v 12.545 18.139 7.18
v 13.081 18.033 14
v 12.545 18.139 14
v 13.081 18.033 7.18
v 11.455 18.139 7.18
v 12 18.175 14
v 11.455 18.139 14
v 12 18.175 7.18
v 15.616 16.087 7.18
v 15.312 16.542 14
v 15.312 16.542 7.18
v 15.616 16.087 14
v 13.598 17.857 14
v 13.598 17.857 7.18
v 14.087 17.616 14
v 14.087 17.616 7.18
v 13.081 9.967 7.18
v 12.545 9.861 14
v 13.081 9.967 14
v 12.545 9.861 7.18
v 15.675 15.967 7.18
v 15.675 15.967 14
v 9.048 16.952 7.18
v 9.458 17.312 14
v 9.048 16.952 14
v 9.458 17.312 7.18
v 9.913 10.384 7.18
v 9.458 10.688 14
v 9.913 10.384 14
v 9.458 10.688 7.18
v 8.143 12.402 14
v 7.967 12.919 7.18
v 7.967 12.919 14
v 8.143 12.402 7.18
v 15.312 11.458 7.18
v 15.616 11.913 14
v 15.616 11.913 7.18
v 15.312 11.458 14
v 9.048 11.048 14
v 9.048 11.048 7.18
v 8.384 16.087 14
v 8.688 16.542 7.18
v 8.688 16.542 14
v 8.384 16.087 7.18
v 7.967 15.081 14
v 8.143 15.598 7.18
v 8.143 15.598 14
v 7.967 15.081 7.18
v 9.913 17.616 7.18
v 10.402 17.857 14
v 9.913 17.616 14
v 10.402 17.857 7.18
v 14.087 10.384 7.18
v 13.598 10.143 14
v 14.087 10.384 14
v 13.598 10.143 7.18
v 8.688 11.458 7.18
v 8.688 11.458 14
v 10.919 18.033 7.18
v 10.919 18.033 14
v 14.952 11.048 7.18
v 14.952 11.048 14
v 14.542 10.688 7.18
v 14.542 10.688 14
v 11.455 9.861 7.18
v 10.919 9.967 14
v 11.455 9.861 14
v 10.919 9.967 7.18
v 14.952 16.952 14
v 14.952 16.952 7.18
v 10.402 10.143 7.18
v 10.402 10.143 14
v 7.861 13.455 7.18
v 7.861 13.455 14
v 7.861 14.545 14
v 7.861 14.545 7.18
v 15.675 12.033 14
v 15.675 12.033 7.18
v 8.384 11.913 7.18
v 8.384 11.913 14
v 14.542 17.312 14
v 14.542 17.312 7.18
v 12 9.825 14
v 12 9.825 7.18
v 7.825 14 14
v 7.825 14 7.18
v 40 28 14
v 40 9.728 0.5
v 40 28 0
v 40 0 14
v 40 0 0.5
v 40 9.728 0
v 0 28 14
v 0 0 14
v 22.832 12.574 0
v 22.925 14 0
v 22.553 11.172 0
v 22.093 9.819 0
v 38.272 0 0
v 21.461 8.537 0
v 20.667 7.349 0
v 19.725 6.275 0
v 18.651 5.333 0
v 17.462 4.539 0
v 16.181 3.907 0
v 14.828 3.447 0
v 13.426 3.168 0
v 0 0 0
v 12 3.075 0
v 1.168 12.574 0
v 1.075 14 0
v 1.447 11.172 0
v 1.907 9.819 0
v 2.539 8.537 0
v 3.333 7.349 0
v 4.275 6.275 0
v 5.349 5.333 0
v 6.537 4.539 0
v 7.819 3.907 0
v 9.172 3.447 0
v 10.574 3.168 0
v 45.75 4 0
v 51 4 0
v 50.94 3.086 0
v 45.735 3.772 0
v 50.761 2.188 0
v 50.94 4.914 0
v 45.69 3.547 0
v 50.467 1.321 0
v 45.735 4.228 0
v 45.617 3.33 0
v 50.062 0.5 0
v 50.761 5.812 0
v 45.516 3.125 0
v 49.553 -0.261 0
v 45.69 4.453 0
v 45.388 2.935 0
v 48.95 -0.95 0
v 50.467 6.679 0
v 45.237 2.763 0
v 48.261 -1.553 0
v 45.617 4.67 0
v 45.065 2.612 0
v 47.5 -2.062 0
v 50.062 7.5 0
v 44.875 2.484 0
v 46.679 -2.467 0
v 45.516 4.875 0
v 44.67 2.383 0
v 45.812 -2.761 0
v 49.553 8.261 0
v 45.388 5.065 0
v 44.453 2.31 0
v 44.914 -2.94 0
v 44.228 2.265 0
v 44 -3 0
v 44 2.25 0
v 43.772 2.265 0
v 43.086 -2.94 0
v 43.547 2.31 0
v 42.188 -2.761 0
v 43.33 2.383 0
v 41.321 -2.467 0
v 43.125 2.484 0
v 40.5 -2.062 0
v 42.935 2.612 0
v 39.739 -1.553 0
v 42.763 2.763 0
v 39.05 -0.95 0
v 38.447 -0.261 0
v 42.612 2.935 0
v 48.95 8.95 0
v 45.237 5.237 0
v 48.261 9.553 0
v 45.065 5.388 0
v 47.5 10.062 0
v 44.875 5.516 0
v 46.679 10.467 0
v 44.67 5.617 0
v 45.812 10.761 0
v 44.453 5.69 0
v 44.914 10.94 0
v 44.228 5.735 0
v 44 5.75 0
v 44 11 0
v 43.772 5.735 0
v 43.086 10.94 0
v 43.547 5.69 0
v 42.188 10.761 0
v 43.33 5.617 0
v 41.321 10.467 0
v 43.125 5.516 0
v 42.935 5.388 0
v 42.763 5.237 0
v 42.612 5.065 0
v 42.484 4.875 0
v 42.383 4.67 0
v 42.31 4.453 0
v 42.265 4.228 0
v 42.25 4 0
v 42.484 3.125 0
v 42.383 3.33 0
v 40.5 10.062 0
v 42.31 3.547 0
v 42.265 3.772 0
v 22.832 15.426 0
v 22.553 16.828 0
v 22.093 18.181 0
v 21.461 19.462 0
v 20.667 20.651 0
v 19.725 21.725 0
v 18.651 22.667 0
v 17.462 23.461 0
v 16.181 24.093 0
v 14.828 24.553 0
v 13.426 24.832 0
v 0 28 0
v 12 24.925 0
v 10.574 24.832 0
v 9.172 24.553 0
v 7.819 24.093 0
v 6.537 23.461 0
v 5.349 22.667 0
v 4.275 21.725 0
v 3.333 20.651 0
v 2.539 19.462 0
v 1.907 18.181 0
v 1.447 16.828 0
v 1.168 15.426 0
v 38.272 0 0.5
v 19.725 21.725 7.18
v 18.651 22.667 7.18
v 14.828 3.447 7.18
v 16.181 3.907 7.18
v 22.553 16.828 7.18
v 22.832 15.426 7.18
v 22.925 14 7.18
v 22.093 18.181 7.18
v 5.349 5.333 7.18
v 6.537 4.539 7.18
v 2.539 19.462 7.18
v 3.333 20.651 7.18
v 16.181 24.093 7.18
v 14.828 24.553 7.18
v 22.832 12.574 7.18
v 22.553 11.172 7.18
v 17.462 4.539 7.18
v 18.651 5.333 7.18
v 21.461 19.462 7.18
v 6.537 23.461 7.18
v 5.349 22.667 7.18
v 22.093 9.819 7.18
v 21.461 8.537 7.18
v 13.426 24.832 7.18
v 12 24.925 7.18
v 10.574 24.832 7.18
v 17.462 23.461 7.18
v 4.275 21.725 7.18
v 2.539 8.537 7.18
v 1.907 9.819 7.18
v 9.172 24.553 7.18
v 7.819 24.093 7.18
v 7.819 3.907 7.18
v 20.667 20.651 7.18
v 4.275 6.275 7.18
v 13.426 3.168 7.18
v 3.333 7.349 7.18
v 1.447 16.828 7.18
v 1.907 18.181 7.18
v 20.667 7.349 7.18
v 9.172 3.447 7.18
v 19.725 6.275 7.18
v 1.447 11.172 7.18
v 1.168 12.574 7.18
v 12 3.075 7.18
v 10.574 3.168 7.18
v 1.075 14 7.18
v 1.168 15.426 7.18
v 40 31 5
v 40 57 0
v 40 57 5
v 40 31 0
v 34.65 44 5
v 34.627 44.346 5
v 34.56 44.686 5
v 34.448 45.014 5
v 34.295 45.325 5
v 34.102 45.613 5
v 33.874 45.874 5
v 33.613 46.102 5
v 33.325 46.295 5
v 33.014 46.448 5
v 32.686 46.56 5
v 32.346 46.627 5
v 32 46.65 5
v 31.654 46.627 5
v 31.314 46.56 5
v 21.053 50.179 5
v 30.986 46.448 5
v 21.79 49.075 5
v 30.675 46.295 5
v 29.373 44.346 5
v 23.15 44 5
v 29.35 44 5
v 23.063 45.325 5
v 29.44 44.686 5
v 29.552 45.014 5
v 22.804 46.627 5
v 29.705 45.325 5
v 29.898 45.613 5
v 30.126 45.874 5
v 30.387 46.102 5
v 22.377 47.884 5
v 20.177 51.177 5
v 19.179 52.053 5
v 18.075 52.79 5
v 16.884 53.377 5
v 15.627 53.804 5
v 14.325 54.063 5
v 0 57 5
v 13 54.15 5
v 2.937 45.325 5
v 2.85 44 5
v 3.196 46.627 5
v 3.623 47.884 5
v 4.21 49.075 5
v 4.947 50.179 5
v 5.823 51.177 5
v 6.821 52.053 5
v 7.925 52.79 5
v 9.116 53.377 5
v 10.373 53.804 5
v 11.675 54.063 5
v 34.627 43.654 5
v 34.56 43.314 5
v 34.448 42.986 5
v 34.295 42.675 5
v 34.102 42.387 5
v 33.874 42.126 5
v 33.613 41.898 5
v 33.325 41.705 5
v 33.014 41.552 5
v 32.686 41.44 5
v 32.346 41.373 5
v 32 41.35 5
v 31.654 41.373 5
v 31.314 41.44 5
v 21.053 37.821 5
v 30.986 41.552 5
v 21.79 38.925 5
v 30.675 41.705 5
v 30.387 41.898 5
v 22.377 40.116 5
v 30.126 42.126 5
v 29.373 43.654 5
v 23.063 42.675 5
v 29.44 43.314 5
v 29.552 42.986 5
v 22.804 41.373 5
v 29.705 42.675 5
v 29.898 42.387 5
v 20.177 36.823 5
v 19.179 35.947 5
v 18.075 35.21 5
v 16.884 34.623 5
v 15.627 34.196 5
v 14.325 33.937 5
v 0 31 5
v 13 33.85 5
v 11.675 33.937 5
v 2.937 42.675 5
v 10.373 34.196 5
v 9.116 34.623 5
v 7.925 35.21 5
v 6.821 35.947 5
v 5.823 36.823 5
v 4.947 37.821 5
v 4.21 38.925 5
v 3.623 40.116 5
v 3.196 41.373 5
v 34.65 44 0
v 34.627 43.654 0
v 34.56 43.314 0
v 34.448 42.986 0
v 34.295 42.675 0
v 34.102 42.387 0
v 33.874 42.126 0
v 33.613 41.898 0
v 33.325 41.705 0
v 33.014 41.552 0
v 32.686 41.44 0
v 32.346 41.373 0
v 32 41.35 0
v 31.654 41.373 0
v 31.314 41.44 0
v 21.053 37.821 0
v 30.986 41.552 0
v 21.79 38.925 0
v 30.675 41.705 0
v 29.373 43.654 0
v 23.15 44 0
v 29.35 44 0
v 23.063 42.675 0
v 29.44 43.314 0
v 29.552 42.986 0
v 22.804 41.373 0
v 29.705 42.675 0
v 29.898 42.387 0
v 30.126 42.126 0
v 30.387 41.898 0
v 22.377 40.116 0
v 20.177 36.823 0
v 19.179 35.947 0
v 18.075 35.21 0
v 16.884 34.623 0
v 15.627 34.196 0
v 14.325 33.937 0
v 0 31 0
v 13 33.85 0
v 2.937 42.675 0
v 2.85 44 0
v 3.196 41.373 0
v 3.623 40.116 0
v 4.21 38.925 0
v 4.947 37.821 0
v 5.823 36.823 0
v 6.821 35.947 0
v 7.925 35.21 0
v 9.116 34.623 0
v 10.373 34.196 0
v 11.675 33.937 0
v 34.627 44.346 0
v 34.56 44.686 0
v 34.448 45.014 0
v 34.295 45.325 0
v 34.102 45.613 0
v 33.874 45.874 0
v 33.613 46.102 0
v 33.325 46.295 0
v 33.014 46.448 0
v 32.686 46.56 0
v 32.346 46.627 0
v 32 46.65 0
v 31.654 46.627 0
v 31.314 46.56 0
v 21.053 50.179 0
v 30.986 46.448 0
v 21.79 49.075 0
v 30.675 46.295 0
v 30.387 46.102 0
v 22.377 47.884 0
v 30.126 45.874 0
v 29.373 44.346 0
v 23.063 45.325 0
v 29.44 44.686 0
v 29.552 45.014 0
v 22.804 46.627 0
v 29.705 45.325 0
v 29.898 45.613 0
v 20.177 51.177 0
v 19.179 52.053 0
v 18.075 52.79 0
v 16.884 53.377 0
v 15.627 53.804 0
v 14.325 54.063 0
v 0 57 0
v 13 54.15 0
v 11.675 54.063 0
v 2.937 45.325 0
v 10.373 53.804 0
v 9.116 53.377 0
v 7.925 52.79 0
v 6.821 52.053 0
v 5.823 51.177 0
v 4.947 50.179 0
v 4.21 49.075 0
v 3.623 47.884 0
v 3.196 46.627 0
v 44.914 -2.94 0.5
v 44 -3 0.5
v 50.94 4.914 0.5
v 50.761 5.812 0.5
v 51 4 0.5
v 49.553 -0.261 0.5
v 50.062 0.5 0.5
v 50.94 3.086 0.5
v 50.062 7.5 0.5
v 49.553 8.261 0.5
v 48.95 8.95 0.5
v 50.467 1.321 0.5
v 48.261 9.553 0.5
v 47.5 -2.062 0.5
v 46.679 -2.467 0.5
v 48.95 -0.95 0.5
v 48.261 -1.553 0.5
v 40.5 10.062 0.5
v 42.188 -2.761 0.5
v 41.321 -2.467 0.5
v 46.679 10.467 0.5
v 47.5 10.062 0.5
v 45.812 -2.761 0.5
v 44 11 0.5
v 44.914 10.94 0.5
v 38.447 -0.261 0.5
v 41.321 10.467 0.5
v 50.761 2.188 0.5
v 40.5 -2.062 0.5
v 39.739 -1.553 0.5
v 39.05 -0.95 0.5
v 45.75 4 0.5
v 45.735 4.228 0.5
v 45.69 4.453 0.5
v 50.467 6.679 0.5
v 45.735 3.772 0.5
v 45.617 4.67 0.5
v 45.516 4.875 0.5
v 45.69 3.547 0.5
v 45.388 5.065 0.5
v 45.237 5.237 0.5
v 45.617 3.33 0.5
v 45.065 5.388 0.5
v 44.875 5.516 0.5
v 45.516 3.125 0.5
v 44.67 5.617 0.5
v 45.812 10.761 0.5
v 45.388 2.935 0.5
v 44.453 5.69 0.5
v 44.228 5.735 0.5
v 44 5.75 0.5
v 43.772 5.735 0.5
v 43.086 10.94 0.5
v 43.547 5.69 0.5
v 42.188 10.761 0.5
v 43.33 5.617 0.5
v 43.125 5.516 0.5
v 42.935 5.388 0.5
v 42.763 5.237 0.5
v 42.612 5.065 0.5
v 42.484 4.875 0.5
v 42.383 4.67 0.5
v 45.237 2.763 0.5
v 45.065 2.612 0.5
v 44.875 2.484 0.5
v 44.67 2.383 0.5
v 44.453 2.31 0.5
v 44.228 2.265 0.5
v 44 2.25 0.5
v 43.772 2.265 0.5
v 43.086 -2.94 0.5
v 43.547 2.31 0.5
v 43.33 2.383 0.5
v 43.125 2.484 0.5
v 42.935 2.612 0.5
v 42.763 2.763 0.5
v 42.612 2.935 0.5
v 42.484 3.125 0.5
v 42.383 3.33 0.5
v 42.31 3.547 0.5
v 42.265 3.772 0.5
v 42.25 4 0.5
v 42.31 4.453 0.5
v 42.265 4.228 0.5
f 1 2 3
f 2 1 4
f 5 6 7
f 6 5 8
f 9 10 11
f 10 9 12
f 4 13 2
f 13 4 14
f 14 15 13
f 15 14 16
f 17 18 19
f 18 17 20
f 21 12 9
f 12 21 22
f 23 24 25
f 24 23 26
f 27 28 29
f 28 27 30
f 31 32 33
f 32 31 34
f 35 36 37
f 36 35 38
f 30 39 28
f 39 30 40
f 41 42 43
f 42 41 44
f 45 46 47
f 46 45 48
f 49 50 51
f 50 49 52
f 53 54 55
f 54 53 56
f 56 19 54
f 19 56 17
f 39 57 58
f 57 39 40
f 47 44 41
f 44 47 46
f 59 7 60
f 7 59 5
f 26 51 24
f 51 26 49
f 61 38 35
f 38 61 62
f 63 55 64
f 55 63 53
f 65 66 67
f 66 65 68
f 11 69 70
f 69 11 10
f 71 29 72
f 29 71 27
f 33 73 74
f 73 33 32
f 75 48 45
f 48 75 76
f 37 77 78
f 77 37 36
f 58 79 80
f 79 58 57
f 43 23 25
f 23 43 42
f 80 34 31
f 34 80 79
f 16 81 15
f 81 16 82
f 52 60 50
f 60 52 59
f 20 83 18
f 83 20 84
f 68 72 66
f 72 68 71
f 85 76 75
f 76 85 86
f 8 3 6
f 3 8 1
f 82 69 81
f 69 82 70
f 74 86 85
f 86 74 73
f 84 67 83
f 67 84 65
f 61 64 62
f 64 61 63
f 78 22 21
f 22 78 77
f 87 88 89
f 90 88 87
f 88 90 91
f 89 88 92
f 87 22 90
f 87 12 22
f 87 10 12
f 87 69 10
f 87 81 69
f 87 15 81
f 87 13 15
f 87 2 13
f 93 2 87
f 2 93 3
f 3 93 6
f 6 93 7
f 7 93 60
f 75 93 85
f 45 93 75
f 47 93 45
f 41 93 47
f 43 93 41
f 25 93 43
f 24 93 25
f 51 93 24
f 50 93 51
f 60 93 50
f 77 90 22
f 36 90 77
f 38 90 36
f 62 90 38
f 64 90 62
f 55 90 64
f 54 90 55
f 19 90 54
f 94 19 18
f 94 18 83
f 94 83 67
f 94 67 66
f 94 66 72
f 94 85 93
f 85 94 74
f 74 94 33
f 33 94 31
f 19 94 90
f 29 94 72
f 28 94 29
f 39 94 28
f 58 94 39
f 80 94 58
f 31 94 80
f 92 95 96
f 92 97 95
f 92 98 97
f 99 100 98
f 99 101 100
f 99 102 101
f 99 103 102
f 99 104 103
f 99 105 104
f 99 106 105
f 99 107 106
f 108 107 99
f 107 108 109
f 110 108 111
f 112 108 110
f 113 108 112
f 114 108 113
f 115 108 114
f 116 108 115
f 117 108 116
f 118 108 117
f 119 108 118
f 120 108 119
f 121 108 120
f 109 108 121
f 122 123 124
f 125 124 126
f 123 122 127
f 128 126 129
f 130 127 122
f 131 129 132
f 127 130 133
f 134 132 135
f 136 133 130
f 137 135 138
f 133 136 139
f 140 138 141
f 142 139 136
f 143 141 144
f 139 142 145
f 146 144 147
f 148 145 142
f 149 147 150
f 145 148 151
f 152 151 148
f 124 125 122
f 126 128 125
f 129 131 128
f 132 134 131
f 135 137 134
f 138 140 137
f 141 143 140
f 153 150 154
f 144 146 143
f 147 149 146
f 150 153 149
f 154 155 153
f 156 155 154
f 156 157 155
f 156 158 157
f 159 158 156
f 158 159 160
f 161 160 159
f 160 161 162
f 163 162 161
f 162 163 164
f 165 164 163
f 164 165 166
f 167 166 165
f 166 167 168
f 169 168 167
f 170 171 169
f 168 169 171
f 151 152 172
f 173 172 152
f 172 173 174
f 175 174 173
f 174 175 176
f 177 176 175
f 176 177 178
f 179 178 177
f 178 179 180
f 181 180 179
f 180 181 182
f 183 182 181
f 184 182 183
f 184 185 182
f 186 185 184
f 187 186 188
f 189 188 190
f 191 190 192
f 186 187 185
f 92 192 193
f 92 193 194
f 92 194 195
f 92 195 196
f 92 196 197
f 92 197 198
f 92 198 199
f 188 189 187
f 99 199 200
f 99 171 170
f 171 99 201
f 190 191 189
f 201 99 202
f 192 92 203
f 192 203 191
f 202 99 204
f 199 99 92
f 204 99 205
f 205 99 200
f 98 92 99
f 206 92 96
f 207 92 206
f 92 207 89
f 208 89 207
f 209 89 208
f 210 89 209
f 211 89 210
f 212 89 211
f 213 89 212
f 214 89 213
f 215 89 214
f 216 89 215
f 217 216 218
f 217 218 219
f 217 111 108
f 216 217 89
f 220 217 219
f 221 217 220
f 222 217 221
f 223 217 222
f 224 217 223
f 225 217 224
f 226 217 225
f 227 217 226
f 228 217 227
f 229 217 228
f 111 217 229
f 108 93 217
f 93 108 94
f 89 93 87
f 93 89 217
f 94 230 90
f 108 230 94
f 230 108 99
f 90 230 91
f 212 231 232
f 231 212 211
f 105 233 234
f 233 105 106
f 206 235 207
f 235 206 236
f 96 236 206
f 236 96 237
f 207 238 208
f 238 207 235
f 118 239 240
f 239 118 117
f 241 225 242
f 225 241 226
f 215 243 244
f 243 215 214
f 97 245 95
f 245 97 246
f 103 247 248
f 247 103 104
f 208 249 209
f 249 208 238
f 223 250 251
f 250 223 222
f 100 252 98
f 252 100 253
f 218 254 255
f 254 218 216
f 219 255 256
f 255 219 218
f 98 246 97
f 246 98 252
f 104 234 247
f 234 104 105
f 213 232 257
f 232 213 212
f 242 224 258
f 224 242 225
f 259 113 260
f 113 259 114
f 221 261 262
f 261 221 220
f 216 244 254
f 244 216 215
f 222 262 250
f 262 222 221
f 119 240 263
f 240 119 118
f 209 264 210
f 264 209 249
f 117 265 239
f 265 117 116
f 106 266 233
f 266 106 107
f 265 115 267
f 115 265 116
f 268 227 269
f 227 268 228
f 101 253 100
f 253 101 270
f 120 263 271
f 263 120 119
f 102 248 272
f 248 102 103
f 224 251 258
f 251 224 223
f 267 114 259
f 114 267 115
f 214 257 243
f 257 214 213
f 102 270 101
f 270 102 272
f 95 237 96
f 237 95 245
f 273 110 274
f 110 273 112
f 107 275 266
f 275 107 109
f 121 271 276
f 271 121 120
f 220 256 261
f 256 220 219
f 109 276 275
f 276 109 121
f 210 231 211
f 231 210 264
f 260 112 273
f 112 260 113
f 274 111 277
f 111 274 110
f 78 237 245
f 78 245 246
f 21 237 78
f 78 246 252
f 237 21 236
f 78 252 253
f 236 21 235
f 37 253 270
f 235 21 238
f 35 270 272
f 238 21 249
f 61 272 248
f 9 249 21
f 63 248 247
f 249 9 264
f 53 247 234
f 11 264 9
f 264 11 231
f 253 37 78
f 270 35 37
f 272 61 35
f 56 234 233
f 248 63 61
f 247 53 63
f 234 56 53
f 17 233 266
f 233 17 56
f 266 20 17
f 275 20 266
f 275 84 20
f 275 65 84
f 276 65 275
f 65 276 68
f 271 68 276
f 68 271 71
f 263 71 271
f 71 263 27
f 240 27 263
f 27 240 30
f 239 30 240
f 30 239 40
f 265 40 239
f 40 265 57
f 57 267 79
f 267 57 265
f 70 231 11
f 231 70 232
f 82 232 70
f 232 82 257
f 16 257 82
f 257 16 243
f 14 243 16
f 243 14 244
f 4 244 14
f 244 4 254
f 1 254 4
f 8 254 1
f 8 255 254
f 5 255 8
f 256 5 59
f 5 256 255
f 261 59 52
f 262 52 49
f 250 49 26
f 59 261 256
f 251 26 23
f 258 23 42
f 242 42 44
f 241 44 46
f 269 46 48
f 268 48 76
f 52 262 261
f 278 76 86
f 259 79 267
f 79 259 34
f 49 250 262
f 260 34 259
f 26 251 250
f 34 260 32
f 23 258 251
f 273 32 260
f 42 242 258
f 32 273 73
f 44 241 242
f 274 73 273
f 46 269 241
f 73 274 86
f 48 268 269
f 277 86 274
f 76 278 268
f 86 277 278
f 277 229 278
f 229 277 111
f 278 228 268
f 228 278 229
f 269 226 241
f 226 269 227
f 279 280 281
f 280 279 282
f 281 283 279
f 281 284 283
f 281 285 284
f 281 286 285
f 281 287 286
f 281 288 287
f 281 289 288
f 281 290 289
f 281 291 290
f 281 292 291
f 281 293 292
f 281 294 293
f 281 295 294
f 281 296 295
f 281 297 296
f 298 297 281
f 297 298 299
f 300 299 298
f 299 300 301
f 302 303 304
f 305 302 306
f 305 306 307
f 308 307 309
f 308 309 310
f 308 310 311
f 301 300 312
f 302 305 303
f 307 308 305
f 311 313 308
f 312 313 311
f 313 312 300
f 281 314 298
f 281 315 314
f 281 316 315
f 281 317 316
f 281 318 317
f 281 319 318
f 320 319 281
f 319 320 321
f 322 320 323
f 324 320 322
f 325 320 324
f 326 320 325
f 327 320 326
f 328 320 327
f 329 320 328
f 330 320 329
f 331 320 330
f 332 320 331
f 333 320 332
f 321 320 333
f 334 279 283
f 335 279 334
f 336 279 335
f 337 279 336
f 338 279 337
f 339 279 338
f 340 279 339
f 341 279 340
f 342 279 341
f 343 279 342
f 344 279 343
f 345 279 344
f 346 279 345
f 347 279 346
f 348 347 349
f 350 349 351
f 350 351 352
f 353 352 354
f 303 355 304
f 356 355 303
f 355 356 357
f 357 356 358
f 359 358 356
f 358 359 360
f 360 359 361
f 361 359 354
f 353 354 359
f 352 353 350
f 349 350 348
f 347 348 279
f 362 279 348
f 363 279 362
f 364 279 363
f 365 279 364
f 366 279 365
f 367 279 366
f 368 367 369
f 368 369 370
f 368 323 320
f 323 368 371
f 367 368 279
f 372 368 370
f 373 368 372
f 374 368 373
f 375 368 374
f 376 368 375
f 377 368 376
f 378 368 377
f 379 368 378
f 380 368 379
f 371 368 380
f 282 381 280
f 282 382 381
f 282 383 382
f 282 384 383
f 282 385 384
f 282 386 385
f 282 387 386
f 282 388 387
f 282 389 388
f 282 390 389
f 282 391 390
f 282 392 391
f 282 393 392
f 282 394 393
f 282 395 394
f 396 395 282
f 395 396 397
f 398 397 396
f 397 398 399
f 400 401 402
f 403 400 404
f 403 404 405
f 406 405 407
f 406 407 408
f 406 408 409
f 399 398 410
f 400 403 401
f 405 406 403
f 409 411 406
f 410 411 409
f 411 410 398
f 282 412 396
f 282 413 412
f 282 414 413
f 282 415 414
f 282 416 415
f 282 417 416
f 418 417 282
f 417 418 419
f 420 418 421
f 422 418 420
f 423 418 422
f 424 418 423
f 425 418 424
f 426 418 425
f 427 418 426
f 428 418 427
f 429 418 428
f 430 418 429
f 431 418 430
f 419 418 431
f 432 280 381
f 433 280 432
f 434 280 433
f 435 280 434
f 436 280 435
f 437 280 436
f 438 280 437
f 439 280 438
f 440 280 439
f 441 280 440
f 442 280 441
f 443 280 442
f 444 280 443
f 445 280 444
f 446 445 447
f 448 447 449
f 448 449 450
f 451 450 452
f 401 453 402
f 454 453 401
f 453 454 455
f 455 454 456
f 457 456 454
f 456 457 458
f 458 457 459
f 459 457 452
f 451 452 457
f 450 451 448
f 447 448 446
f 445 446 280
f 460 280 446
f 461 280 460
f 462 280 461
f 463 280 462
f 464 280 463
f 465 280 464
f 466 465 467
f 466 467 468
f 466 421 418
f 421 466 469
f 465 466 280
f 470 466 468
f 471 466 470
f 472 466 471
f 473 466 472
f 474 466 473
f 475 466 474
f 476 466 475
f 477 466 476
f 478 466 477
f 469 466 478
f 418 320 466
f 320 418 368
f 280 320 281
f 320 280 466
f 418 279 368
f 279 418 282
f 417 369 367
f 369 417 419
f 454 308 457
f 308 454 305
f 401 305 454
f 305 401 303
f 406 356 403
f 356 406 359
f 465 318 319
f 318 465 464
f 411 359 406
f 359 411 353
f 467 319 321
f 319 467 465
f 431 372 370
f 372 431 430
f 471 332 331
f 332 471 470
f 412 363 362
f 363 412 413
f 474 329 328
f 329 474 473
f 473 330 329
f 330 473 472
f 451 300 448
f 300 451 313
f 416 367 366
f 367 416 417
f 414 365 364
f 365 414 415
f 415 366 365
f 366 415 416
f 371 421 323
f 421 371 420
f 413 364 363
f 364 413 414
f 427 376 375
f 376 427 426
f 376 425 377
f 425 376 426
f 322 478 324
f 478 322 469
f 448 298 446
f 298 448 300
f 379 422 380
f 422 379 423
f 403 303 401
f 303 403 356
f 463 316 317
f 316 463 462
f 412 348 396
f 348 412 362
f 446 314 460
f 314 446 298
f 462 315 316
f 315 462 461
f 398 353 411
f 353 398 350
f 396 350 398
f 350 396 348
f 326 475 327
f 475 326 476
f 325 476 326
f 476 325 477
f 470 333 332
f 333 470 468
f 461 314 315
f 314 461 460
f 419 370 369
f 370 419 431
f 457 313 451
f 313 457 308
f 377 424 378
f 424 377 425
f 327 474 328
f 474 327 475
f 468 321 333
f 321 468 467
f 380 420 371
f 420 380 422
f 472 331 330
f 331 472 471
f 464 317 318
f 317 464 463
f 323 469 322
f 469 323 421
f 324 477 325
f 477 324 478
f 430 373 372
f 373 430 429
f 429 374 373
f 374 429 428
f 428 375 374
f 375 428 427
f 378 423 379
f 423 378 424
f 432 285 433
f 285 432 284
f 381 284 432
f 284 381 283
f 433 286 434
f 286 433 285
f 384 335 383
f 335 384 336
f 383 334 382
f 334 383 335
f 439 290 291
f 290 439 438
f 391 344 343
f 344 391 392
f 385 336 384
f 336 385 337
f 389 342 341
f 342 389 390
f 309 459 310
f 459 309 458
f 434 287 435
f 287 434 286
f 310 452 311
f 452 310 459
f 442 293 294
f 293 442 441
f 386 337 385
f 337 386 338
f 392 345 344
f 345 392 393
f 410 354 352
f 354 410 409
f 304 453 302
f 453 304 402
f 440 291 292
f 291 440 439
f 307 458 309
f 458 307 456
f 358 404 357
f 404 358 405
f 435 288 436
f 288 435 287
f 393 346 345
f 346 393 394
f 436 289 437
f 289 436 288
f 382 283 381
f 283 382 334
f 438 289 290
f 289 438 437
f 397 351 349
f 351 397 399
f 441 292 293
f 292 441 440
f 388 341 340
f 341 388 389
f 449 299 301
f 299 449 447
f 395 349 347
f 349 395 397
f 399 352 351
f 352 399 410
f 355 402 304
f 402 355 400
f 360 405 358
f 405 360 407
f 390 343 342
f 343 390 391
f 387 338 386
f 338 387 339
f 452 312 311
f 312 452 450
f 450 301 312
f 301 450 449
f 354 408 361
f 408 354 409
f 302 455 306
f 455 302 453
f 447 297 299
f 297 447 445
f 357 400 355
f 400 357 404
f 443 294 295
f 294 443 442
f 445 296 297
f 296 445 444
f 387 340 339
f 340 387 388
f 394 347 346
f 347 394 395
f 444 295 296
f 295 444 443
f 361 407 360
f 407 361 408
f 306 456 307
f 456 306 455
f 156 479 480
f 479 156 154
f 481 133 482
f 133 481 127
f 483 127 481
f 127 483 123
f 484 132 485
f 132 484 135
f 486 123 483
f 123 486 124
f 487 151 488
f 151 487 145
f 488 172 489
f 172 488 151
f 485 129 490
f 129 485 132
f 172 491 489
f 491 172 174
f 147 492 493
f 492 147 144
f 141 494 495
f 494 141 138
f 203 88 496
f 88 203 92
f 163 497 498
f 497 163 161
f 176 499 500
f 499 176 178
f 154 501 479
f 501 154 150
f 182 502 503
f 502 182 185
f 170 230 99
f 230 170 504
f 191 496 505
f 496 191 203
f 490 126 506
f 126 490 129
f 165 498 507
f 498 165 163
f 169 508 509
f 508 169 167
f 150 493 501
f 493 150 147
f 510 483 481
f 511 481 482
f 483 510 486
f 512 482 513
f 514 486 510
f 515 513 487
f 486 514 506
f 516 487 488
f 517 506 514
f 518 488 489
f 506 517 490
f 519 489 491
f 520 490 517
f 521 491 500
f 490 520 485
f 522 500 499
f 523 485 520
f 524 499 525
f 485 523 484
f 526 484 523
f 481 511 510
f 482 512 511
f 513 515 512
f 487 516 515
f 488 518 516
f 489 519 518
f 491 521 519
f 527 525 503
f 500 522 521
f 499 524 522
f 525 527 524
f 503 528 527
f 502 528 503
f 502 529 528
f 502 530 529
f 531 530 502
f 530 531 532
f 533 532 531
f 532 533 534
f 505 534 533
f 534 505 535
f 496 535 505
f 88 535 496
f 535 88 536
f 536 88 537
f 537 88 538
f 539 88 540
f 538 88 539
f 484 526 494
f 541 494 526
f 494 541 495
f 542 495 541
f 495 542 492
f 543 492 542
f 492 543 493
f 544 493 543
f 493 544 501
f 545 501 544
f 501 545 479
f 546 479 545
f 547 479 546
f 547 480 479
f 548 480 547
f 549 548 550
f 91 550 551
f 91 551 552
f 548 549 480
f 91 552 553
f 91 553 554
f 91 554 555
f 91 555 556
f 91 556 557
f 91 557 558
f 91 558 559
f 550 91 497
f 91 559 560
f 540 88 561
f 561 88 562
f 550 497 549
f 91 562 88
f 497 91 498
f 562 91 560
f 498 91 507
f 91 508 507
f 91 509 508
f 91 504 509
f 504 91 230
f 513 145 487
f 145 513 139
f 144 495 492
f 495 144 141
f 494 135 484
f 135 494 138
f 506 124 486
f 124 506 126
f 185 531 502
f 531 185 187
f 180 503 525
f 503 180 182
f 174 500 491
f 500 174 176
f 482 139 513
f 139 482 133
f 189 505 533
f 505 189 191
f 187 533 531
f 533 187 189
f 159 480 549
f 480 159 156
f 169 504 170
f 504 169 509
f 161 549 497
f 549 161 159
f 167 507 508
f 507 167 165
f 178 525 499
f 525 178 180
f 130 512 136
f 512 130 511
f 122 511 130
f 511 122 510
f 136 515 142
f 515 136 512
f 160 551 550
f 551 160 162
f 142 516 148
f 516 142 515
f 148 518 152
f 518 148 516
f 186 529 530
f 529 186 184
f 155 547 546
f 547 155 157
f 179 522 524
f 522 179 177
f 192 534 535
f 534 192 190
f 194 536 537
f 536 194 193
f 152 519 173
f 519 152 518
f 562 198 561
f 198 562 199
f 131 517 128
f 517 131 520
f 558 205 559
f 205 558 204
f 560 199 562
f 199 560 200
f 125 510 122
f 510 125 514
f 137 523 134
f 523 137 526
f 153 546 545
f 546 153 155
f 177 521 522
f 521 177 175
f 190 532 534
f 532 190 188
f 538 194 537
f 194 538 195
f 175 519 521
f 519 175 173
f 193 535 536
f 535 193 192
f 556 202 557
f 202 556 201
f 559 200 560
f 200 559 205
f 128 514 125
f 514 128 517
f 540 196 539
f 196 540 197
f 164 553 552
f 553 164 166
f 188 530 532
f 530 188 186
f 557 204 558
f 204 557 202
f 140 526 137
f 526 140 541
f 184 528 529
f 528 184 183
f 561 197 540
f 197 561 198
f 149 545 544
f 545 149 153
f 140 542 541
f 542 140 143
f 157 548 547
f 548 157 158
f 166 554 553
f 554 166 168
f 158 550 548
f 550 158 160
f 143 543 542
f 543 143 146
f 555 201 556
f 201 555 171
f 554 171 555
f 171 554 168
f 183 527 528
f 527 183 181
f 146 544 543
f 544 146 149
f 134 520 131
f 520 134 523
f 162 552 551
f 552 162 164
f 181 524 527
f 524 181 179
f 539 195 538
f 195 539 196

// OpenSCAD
// file: parameters.scad
// =============================================================================
// Gen-CD — nightly 2026-10-14 (physics_scorer, honest magpylib watts)
// Push past Gen-CA on the same arc-nested one-plate architecture: poles out to R86, bobbins r65–105 × 4.95 mm copper. Full-resolution scorer picks this window at ≈8.56 W (386 m, at the wire budget) with a Ø229 stator that still packs; thinner-copper R86 tips (r65–107 × 4.65) need Ø232+ and would not pack. Same 8 bolt-on arcs/rotor + D-flat hub + open-centre stator + in-place bobbin bases that unlocked Gen-CA.
// Clocking 0 deg (magnets N facing S) + D-flat keyed bore + index notch + flip-symmetric hole map.
// Windable 2-piece bobbin; turns = physics_scorer turns_fit; copper only between flanges.
// Steel back-iron: 2× Ø198 × 4.76 mm (3/16") mild-steel discs (steel_backiron_disc.dxf); magnets sit ON the steel
// (through-pockets) -> score with --back-iron. Night 2026-10-14.
// =============================================================================
topology            = "dual_rotor";

// --- Wire / winding (physics_scorer winding-fit) -------------------------------
wire_awg            = 26;
wire_od             = 0.45;     // insulated OD mm (bare 0.405)
fill_realistic      = 0.65;     // insulated-wire area / window (DENSE layered wind with a jig; scorer cap 0.65)
turns               = 370;       // = physics_scorer turns_fit (do NOT raise)
coil_former_type    = "bobbin";
coil_core_inset     = 18.31;     // radial copper build: hub = copper boundary inset by this
wind_build_axial    = 0.0;      // nothing proud of the flanges
wind_build_radial   = 0.0;

// --- Bobbin (base + lid) ---------------------------------------------------------
coil_id_r           = 65.00;    // copper boundary sector
coil_od_r           = 105.00;
span_deg            = 26.91;    // = pitch - 2*asin((wall+0.85)/coil_id_r) -> >=1.2 mm stator web
former_web          = 4.95;     // copper height between flanges (TALL copper: steel keeps Bz up)
flange_t            = 0.80;     // >= 0.8 mm FDM wall rule (tall winds push on the flanges)
wall                = 0.80;     // flange lip beyond copper
former_bare_h       = former_web + 2 * flange_t;
coil_envelope_h     = former_bare_h + 2 * wind_build_axial;
tab_w               = 7.0;
tab_len             = 7.0;
tab_h               = former_bare_h / 2;
pin_d               = 1.9;      // 1.75 mm filament locating pin
coil_mount_r        = coil_od_r + 0.2 + 4.0;
lead_y              = 1.6;
lead_slot_w         = 0.9;
lead_groove_d       = 0.6;

// --- Gap -------------------------------------------------------------------------
run_clear           = 0.50;     // rotor face -> flange
gap_spacer_h        = run_clear + wind_build_axial;
m2m                 = coil_envelope_h + 2 * run_clear;   // rotor face to rotor face (= gap_sleeve length)

// --- Stator ----------------------------------------------------------------------
coil_stations       = 12;
bay_clear           = 0.35;     // 0.35 mm: bobbin BASES print IN PLACE inside the stator bays (print-in-place gap), then pop out
stator_thick        = former_bare_h;                        // bobbins flush both faces
stator_od           = 229.0;
shaft_clear_stator  = 14.0;     // stator is static; gap sleeve OD 12 spins inside
stator_ir           = 59.85;    // ANNULAR stator: open centre (nested one-plate pack); inner rim 4.0 mm

// --- Rotor(s) --------------------------------------------------------------------
magnet_Br           = 1.43;     // N52
magnet_d_large      = 20.0;
magnet_h_large      = 5.0;      // one O20x5 per pocket
magnet_h_small      = 5.0;      // unused: no O5 pockets in this kit
halbach_magnetisation = "none";  // NO O5 assist magnets in this kit (scan: they lower the 4-pole score)
rotor_b_same_axis   = true;     // same-index magnets share one axis: N faces S across the gap
large_pocket_d      = 20.3;
small_pocket_d      = 5.3;
pocket_h            = 5.00;     // THROUGH the carrier: magnet back face sits on the steel disc (FLUSH seat: carrier = magnet height, magnet face level with the rotor face)
large_n             = 8;
R_large             = 86.0;
small_r_list        = [];       // no O5 pockets
carrier_od          = 198.0;
ring_ir             = 72.85;    // RING rotor: PLA magnet ring r ring_ir..carrier_od/2 (steel disc = structural rotor)
hub_flange_od       = 74.0;     // separate rotor_hub flange (inside the ring, flush with the ring face)
csk_d               = 6.6;      // M3 countersunk head pocket (ISO 10642 head 6.0 nominal) on the stator face
csk_depth           = 1.55;     // = (csk_d - m3_clear) / 2: 90 deg cone; head sits 0.3 mm below the face
n_seg               = 8;        // magnet-carrier ARCS per rotor (segmented carrier)
seg_deg             = 360 / n_seg;
seg_start           = -22.5;   // arc edge angle (between pocket 0 and its clamp bolt)
seg_kerf_deg        = 0.4;      // gap between neighbouring arcs on the steel
carrier_thick       = pocket_h;
hub_h               = 12.0;     // > steel_t + insert: radial set-screw clears the steel
hub_od              = 24.0;     // slim hub so the M4 brace rods fit at R~18 inside the coil ring
hub_insert_d        = 4.0;      // M3 heat-set insert, radial, bears on the D-flat
rotor_b_offset_deg  = 0.0;      // CLOCKING: magnets directly opposite
shaft_key           = "dflat";
dflat_depth         = 0.5;      // 8 mm shaft with 0.5 mm flat (7.5 across flat)
index_notch_d       = 3.0;

// --- Steel back-iron (buyable laser-cut) -------------------------------------------
steel_t             = 4.76;      // mild steel thickness (image method ignores it; sized from steel_flux.py so the return path stays well below saturation)
steel_center_hole   = 26.0;     // slips over the rotor hub (OD 24)
steel_od            = carrier_od;   // steel disc OD = rotor carrier OD

// --- Modular MAX interface ----------------------------------------------------------
shaft_bore          = 8.35;
dflat_x             = 4.0 - dflat_depth + (shaft_bore - 8.0) / 2;
bearing_d           = 21.85;
bearing_h           = 7.2;
m3_clear            = 3.5;
bolt_r_inner        = 30.0;     // M3 steel-disc clamp bolts (inside the magnet ring)
bolt_n_inner        = 4;
bolt_inner_angles   = [0, 90, 180, 270];
bolt_r_outer        = 86.0;     // second M3 steel-disc clamp ring
bolt_outer_angles   = [22.5, 67.5, 112.5, 157.5, 202.5, 247.5, 292.5, 337.5];
flange_bolt_r       = 109.5;     // frame rods: OUTSIDE the rotor OD (rotors spin inside them)
flange_bolt_n       = 4;
flange_bolt_offset  = 45.00;    // between coil stations -> never cuts a lead groove/tab
brace_r             = 18.0;
brace_d             = 4.3;      // temporary M4 jack rods (assembly only)
brace_n             = 4;
brace_angles        = [45, 135, 225, 315];          // flip-symmetric

spacer_pad_od       = 14.0;
spacer_pad_id       = m3_clear;
endbell_od          = 229.0;
endbell_thick       = 8.0;
endbell_shaft_clear = 10.0;
collar_h            = 10.0;
standoff_od         = 9.0;
frame_standoff_h    = run_clear + carrier_thick + hub_h + collar_h + 2.0;
sleeve_od           = 12.0;
plate_max_mm        = 410;

$fn = 64;
// main file
// Gen-CD — fit coupon: O20/O5 THROUGH pockets at carrier thickness (test on a steel offcut), 608 seat,
// D-flat bore, gap shim, and one bobbin-bay slice (bobbin footprint + bay_clear) to test former fit.
include <parameters.scad>;
$fn = 48;
// D-flat keyed bore: flat faces +X (angle 0 = magnet pocket 0 = index notch)
module dflat_bore(h) {
    intersection() {
        cylinder(d=shaft_bore, h=h);
        translate([-shaft_bore, -shaft_bore, 0]) cube([shaft_bore + dflat_x, 2*shaft_bore, h]);
    }
}
module sector_2d(r_in, r_out, ang) {
    polygon([
        for (a = [-ang/2 : ang/24 : ang/2]) [r_in*cos(a), r_in*sin(a)],
        for (a = [ang/2 : -ang/24 : -ang/2]) [r_out*cos(a), r_out*sin(a)]
    ]);
}
module footprint_2d() { offset(r=wall) sector_2d(coil_id_r, coil_od_r, span_deg); }
module hub_2d()       { offset(delta=-coil_core_inset) sector_2d(coil_id_r, coil_od_r, span_deg); }

block_w = 40; block_d = 28; block_h = 14;
difference() {
    cube([block_w, block_d, block_h]);
    translate([12, block_d/2, -0.02]) cylinder(d=bearing_d, h=bearing_h);
    translate([12, block_d/2, -0.1]) dflat_bore(block_h + 1);
}
translate([0, block_d + 3, 0]) difference() {
    cube([40, 26, carrier_thick]);
    translate([13, 13, -0.1]) cylinder(d=large_pocket_d, h=carrier_thick + 0.2);
    translate([32, 13, -0.1]) cylinder(d=small_pocket_d, h=carrier_thick + 0.2);
}
translate([block_w + 4, 4, 0])
    difference() {
        cylinder(d=spacer_pad_od, h=gap_spacer_h);
        translate([0, 0, -0.1]) cylinder(d=spacer_pad_id, h=gap_spacer_h + 0.2);
    }
